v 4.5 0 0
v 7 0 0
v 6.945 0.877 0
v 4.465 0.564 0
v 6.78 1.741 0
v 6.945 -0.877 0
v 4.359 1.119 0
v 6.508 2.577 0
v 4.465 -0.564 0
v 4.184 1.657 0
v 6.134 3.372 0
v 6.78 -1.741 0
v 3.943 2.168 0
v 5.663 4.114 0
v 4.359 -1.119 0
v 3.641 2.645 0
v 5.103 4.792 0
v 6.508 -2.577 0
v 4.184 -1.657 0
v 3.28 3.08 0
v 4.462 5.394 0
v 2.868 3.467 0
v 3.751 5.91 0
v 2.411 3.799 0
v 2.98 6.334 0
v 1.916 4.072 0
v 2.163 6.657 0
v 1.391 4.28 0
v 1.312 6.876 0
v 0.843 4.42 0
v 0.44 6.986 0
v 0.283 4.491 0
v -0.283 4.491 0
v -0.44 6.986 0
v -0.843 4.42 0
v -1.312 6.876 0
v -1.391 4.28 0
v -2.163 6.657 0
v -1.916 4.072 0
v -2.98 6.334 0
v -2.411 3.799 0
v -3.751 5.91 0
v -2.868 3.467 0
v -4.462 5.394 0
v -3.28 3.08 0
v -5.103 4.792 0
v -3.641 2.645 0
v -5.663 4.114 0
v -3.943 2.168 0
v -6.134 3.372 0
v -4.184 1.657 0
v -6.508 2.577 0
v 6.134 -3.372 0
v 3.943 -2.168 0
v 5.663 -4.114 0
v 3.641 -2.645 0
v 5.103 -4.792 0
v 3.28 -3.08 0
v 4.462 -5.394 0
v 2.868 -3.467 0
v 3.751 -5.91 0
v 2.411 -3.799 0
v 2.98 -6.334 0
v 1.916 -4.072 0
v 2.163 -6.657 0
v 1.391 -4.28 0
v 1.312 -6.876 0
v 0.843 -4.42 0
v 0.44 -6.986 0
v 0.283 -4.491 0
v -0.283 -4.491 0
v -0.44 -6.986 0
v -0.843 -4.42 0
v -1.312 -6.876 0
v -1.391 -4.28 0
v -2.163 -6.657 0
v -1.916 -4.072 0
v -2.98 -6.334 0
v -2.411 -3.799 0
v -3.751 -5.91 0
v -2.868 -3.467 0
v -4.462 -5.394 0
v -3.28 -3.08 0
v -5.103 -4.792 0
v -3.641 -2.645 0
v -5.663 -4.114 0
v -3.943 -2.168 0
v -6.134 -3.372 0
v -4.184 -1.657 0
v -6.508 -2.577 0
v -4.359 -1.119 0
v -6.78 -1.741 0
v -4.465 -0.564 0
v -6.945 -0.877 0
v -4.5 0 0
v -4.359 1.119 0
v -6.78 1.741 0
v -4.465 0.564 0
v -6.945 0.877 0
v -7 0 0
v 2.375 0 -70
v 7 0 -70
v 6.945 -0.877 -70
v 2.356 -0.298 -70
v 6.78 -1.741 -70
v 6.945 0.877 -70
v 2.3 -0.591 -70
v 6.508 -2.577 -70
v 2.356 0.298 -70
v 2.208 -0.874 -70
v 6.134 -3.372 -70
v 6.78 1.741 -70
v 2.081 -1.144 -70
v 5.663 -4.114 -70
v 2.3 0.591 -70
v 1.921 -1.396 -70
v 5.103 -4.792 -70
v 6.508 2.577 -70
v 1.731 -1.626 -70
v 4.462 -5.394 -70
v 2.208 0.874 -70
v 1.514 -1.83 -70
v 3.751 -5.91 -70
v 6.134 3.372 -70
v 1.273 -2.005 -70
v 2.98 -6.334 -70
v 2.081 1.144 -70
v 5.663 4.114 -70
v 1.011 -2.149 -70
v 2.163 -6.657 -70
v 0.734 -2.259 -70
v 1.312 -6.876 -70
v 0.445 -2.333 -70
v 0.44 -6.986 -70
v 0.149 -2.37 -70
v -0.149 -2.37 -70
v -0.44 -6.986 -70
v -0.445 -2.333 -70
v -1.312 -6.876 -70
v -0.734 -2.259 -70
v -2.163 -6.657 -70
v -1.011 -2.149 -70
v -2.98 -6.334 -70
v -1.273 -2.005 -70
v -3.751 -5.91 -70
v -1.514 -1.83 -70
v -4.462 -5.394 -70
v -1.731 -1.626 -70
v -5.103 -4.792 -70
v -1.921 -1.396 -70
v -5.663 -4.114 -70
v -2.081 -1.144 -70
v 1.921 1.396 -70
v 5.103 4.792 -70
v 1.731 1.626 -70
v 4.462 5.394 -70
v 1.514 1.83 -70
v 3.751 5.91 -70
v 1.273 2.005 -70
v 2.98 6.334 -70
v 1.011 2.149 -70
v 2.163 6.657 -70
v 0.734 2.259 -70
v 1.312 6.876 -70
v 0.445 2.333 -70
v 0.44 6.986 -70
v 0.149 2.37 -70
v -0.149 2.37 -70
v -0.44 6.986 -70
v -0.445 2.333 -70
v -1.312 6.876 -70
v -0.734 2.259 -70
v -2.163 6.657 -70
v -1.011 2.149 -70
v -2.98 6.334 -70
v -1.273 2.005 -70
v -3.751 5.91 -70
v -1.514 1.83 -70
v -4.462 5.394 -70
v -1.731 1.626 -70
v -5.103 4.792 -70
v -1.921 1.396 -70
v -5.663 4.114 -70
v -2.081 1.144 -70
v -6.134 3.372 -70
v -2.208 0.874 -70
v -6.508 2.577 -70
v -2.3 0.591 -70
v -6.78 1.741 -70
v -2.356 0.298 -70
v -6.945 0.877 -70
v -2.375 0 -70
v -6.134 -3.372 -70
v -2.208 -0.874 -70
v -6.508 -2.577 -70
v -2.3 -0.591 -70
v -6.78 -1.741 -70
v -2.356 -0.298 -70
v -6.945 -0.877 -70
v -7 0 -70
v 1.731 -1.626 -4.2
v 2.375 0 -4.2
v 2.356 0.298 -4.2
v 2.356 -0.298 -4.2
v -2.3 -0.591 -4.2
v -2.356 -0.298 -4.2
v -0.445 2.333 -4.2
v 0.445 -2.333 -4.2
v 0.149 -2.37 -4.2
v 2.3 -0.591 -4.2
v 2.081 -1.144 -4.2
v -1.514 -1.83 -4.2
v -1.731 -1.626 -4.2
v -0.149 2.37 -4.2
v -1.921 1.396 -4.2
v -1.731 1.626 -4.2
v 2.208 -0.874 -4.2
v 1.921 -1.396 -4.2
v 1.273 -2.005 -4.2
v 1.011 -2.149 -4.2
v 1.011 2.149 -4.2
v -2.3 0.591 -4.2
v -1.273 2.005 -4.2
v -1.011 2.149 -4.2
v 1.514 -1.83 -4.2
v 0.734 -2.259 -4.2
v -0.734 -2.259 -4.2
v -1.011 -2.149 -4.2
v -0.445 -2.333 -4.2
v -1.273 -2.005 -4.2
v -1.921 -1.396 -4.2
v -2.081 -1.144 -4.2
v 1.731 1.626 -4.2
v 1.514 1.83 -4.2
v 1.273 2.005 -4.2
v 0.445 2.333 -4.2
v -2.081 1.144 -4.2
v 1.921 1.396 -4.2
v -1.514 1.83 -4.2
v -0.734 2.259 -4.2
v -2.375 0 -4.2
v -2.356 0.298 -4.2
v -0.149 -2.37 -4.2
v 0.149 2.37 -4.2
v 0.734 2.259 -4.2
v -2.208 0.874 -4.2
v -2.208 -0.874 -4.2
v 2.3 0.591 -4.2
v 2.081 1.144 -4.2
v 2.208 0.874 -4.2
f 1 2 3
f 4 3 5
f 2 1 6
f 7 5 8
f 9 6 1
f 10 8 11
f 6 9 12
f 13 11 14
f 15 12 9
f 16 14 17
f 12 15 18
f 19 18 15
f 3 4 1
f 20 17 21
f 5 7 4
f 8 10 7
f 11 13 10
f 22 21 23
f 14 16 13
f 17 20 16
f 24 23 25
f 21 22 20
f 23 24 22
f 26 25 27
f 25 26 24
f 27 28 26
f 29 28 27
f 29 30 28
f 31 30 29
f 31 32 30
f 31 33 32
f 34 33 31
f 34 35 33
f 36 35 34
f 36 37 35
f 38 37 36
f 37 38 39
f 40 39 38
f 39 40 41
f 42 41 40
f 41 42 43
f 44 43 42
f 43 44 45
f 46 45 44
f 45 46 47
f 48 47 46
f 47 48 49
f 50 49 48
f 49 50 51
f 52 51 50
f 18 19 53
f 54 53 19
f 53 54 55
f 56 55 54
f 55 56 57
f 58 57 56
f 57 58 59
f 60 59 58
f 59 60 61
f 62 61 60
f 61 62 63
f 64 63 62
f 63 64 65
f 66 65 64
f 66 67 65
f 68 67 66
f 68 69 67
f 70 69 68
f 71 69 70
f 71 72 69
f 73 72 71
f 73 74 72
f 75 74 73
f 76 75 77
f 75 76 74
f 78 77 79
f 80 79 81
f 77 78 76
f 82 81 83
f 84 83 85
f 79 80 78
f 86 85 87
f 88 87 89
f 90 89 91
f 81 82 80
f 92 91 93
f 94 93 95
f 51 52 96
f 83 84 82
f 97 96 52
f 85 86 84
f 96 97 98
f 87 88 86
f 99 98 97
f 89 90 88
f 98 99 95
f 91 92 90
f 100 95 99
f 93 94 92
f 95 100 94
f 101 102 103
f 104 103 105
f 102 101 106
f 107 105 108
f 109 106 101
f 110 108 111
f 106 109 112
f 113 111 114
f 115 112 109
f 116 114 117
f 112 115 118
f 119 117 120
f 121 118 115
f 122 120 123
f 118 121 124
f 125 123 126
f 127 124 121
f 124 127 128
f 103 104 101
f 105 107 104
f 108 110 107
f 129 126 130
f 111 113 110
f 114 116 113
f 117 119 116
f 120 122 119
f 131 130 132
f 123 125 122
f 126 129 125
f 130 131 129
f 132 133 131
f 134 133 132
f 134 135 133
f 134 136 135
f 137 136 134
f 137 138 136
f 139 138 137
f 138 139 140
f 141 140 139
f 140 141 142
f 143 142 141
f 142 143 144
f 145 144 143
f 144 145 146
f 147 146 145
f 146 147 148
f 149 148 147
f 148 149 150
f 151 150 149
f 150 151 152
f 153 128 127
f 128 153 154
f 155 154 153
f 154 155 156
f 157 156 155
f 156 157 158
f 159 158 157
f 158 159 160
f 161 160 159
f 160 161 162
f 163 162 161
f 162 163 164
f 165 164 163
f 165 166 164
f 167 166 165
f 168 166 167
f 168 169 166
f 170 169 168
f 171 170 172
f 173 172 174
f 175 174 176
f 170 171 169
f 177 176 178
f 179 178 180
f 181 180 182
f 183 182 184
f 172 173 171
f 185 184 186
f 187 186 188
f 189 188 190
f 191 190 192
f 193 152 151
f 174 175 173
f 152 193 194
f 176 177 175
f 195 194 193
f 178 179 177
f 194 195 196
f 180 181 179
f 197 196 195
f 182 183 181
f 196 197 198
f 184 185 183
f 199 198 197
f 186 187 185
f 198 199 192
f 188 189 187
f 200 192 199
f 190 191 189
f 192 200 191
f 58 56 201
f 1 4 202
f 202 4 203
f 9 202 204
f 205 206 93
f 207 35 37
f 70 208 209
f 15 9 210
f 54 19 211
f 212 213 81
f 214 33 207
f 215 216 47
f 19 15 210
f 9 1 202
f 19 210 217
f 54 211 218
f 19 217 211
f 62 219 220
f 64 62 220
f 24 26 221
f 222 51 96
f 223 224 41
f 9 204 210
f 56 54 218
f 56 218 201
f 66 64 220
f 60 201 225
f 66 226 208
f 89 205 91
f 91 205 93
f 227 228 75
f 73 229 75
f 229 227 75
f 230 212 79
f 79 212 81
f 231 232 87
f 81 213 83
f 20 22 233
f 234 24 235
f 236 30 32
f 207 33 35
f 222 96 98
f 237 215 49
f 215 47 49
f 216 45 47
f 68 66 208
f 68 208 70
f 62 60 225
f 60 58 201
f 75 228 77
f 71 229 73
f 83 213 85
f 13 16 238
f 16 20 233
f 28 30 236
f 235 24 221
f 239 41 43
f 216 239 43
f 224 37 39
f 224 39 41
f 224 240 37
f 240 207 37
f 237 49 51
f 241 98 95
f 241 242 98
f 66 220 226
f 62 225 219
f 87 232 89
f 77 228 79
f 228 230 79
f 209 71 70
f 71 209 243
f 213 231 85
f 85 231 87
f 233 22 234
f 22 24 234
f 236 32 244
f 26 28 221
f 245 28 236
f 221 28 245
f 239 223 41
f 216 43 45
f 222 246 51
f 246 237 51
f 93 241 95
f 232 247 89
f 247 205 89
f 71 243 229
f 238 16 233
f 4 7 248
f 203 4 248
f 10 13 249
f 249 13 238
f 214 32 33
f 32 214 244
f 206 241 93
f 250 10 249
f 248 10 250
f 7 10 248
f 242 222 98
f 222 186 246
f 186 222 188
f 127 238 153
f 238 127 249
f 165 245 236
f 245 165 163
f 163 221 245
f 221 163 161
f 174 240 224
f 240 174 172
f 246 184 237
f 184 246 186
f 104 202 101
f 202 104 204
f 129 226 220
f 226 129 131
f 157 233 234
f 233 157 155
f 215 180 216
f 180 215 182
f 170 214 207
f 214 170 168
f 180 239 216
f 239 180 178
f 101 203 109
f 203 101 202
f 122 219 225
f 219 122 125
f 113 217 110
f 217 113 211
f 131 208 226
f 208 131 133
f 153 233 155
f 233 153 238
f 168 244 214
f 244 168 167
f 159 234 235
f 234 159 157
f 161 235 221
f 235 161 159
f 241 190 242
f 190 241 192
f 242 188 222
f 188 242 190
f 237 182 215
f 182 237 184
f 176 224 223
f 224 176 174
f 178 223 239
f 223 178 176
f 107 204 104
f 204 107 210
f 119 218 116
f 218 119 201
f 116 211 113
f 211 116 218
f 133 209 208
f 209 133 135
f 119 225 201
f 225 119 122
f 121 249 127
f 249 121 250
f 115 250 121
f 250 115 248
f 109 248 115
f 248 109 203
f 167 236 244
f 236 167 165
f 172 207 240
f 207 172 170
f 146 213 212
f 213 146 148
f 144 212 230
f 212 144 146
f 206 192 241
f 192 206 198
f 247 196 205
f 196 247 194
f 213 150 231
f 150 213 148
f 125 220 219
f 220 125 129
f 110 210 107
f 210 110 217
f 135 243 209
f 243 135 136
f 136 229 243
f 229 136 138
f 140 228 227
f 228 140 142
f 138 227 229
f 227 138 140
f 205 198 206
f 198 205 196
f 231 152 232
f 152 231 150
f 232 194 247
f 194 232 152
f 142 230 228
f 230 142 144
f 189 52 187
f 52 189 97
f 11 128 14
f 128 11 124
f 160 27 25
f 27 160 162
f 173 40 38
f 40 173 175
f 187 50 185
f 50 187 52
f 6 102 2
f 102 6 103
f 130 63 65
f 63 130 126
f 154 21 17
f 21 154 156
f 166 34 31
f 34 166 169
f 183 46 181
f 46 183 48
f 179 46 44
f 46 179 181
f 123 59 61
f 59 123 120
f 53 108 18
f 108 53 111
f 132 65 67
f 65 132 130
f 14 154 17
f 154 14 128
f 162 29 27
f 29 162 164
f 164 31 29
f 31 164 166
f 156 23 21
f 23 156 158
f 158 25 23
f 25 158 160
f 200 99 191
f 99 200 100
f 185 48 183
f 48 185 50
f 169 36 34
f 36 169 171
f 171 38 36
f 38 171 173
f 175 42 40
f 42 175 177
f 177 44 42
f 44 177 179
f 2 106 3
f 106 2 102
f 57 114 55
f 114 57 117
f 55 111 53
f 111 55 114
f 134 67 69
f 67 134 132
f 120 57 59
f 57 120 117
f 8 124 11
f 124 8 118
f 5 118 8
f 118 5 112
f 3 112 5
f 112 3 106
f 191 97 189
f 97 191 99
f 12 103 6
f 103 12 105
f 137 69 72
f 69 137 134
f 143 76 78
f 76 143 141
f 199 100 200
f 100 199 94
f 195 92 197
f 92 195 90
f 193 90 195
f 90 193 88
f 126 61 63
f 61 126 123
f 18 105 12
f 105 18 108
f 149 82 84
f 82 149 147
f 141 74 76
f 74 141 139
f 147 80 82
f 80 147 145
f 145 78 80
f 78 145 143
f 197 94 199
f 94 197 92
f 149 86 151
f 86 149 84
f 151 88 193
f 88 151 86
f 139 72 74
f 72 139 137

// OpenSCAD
$fn = 50;


difference() {
	union() {
		translate(v = [0, 0, -70.0000000000]) {
			cylinder(h = 70, r = 7.0000000000);
		}
	}
	union() {
		translate(v = [0, 0, 0]) {
			rotate(a = [0, 0, 0]) {
				difference() {
					union() {
						#translate(v = [0, 0, -70.0000000000]) {
							cylinder(h = 70, r = 2.2500000000);
						}
						#translate(v = [0, 0, -4.2000000000]) {
							cylinder(h = 4.2000000000, r = 7.0000000000, r1 = 2.3750000000, r2 = 4.5000000000);
						}
						#translate(v = [0, 0, -70.0000000000]) {
							cylinder(h = 70, r = 2.3750000000);
						}
						#translate(v = [0, 0, -70.0000000000]) {
							cylinder(h = 70, r = 2.2500000000);
						}
					}
					union();
				}
			}
		}
	}
}
